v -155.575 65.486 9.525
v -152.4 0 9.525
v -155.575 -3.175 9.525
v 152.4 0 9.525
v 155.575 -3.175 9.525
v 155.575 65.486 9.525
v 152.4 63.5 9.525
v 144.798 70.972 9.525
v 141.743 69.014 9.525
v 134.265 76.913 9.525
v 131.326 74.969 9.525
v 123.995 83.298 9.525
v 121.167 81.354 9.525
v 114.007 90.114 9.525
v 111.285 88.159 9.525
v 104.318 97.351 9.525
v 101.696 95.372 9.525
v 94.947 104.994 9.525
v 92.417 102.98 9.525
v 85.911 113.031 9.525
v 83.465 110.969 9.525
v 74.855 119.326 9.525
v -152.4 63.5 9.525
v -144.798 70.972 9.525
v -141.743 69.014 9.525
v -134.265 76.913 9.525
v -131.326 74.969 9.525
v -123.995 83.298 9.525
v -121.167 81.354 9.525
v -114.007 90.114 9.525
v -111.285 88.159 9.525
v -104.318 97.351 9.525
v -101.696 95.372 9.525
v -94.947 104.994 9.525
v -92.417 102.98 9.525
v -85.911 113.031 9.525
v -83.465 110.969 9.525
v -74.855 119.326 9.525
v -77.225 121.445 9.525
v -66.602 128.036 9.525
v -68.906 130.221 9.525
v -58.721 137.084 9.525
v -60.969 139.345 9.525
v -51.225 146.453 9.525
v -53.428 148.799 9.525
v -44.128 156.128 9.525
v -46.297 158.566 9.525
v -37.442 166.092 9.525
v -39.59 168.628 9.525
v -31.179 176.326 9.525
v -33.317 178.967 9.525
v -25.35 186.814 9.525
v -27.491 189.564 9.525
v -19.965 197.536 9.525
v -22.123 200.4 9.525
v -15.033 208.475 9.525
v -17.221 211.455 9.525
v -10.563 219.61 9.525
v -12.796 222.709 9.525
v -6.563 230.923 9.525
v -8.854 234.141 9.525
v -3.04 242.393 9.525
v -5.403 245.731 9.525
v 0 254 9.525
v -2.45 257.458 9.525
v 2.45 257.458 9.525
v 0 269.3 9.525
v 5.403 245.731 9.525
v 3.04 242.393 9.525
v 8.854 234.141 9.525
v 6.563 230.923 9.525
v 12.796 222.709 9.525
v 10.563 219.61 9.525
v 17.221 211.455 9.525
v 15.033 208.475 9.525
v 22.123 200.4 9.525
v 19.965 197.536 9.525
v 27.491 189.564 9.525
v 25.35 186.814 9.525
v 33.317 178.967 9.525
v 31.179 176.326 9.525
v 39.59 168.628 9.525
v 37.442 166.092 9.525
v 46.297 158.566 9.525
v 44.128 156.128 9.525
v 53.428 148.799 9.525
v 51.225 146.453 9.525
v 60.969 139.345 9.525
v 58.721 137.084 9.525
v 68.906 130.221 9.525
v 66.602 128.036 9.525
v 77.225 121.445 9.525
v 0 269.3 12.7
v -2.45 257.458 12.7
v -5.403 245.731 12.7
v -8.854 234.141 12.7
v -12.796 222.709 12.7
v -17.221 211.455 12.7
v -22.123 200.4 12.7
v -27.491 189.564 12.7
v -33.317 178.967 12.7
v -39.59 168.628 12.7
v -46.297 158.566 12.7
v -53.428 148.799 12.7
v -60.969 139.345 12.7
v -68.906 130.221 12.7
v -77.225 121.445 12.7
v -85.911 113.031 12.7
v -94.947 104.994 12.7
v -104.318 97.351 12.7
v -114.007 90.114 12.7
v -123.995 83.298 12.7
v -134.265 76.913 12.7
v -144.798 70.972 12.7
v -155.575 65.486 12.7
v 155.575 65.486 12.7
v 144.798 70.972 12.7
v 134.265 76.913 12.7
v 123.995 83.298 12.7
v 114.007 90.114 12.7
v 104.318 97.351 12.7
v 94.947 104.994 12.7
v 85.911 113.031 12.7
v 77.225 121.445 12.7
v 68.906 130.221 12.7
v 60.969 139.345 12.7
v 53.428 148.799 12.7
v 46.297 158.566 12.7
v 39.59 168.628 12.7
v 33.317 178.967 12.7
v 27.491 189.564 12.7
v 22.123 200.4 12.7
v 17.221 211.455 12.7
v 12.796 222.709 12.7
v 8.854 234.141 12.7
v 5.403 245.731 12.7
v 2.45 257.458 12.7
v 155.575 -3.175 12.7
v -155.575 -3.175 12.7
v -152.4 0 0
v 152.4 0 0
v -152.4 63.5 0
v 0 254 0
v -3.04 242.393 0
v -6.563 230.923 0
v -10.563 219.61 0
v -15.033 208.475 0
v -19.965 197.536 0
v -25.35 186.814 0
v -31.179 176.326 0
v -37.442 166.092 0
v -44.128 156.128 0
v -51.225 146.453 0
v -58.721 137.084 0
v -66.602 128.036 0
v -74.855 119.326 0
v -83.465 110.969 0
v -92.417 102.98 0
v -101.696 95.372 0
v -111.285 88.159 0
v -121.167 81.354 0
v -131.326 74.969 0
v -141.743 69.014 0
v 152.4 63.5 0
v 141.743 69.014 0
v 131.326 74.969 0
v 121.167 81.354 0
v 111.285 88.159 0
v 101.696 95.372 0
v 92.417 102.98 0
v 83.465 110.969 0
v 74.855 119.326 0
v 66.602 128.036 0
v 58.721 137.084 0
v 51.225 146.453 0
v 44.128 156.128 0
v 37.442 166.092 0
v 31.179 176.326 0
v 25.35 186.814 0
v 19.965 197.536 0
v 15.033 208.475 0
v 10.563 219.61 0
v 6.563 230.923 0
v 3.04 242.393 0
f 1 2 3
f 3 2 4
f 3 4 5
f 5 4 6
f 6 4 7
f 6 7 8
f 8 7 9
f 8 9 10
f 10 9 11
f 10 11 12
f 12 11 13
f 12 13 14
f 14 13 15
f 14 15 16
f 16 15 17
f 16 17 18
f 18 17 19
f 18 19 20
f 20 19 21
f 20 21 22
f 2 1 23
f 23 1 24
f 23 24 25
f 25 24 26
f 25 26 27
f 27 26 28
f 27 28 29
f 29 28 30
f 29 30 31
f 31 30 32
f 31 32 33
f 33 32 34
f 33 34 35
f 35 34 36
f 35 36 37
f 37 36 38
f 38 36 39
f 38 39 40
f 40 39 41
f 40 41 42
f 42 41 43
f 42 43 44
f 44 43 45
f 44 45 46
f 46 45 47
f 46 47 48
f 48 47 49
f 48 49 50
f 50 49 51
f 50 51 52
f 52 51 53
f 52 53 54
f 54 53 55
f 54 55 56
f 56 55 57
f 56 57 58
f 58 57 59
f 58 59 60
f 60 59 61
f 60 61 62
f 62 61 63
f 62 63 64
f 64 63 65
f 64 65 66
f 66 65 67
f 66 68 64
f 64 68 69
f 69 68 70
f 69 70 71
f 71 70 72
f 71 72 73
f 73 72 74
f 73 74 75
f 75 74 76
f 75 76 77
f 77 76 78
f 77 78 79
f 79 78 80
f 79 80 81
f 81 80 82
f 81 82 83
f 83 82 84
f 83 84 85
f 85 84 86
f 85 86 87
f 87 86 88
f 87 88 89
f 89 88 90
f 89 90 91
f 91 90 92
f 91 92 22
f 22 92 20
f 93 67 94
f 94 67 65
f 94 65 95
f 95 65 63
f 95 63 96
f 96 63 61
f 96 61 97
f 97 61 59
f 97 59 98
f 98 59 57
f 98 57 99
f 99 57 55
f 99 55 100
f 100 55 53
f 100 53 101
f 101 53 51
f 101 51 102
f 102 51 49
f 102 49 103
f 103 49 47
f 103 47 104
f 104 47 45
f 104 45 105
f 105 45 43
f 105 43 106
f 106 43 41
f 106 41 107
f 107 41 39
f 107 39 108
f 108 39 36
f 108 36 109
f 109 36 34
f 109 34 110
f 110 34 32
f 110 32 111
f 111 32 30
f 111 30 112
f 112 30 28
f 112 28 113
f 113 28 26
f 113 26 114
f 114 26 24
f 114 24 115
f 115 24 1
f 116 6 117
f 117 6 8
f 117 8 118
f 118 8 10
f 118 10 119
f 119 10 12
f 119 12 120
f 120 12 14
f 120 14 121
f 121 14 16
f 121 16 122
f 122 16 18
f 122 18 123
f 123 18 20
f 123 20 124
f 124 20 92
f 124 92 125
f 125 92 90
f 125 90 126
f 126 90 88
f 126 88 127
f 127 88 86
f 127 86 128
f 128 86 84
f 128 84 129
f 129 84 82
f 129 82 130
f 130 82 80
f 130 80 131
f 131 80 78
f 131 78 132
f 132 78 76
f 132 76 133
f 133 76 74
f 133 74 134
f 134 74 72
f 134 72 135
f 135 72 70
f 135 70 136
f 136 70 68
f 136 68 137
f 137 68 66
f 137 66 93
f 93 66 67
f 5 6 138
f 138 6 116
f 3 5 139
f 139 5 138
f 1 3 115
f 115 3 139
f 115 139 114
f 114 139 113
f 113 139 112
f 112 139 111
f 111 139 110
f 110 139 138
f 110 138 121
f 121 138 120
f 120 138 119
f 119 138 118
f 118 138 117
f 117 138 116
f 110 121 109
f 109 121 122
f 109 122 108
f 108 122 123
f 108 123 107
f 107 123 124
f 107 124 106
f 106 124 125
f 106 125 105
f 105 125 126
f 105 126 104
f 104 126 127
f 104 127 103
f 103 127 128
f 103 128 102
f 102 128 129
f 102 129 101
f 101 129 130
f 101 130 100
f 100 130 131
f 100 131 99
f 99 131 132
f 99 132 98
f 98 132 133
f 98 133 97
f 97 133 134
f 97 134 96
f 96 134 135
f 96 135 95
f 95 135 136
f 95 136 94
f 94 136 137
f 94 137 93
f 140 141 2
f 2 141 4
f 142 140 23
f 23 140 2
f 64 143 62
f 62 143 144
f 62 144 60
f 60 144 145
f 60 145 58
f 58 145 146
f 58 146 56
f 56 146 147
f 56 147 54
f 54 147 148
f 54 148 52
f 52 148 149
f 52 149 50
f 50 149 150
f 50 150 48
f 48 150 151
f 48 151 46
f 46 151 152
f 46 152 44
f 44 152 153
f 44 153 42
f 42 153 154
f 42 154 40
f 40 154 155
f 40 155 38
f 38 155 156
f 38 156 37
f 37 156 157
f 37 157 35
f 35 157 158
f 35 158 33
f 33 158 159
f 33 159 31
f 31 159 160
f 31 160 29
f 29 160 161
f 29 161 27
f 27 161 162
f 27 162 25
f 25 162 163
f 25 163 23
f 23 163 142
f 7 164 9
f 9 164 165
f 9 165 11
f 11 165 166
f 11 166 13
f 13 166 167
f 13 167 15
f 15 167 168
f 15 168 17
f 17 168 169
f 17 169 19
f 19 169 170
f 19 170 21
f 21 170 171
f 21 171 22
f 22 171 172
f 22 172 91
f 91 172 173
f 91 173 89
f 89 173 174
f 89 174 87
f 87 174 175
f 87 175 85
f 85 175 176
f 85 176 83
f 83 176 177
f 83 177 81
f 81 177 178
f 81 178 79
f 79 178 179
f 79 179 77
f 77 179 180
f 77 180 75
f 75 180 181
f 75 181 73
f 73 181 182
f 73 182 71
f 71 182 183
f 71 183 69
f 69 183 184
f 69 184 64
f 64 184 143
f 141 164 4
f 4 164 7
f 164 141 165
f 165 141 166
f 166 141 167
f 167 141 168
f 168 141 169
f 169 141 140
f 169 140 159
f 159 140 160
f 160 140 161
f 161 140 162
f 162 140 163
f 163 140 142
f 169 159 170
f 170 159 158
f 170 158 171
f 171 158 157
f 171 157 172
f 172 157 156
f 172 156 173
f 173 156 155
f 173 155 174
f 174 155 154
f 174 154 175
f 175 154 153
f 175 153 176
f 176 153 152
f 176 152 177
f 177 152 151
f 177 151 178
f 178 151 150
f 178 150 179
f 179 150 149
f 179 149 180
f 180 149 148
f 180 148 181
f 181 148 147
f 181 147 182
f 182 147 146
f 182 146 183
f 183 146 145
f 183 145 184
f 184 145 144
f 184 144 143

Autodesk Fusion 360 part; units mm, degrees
sketch "Sketch1" plane through (0, 0, 0) normal (0, 0, 1) x (1, 0, 0)
  line L0 (0, 0) -> (0, 254) construction
  line L1 (0, 0) -> (152.4, 0)
  line L2 (152.4, 0) -> (152.4, 63.5)
  arc A0 (0, 254) -> (152.4, 63.5) centre (278.7714, 320.8071) ccw
  arc A1 (-152.4, 63.5) -> (0, 254) centre (-278.7714, 320.8071) ccw
  line L3 (-152.4, 0) -> (-152.4, 63.5)
  line L4 (0, 0) -> (-152.4, 0)
  dimension "d1" = 254
  dimension "d2" = 152.4
  dimension "d3" = 63.5
extrude "Extrude1" add sketch "Sketch1" along normal blind 9.525
sketch "Sketch2" plane through (0, 0, 9.525) normal (0, 0, 1) x (1, 0, 0)
  line L0 (152.4, 0) -> (152.4, 63.5)
  arc A0 (0, 254) -> (152.4, 63.5) centre (278.7714, 320.8071) ccw
  arc A1 (-152.4, 63.5) -> (0, 254) centre (-278.7714, 320.8071) ccw
  line L1 (-152.4, 63.5) -> (-152.4, 0)
  line L2 (-152.4, 0) -> (152.4, 0)
  line L3 (155.575, -3.175) -> (155.575, 65.4856)
  arc A2 (0, 269.3003) -> (155.575, 65.4856) centre (278.7714, 320.8071) ccw
  arc A3 (-155.575, 65.4856) -> (0, 269.3003) centre (-278.7714, 320.8071) ccw
  line L4 (-155.575, 65.4856) -> (-155.575, -3.175)
  line L5 (-155.575, -3.175) -> (155.575, -3.175)
  dimension "d6" = -3.175
extrude "Extrude2" add sketch "Sketch2" along normal blind 3.175 contours L0 A0 A1 L1 L2 | L3 A2 A3 L4 L5
equation "d1 = 10\""
equation "d2 = 6\""
